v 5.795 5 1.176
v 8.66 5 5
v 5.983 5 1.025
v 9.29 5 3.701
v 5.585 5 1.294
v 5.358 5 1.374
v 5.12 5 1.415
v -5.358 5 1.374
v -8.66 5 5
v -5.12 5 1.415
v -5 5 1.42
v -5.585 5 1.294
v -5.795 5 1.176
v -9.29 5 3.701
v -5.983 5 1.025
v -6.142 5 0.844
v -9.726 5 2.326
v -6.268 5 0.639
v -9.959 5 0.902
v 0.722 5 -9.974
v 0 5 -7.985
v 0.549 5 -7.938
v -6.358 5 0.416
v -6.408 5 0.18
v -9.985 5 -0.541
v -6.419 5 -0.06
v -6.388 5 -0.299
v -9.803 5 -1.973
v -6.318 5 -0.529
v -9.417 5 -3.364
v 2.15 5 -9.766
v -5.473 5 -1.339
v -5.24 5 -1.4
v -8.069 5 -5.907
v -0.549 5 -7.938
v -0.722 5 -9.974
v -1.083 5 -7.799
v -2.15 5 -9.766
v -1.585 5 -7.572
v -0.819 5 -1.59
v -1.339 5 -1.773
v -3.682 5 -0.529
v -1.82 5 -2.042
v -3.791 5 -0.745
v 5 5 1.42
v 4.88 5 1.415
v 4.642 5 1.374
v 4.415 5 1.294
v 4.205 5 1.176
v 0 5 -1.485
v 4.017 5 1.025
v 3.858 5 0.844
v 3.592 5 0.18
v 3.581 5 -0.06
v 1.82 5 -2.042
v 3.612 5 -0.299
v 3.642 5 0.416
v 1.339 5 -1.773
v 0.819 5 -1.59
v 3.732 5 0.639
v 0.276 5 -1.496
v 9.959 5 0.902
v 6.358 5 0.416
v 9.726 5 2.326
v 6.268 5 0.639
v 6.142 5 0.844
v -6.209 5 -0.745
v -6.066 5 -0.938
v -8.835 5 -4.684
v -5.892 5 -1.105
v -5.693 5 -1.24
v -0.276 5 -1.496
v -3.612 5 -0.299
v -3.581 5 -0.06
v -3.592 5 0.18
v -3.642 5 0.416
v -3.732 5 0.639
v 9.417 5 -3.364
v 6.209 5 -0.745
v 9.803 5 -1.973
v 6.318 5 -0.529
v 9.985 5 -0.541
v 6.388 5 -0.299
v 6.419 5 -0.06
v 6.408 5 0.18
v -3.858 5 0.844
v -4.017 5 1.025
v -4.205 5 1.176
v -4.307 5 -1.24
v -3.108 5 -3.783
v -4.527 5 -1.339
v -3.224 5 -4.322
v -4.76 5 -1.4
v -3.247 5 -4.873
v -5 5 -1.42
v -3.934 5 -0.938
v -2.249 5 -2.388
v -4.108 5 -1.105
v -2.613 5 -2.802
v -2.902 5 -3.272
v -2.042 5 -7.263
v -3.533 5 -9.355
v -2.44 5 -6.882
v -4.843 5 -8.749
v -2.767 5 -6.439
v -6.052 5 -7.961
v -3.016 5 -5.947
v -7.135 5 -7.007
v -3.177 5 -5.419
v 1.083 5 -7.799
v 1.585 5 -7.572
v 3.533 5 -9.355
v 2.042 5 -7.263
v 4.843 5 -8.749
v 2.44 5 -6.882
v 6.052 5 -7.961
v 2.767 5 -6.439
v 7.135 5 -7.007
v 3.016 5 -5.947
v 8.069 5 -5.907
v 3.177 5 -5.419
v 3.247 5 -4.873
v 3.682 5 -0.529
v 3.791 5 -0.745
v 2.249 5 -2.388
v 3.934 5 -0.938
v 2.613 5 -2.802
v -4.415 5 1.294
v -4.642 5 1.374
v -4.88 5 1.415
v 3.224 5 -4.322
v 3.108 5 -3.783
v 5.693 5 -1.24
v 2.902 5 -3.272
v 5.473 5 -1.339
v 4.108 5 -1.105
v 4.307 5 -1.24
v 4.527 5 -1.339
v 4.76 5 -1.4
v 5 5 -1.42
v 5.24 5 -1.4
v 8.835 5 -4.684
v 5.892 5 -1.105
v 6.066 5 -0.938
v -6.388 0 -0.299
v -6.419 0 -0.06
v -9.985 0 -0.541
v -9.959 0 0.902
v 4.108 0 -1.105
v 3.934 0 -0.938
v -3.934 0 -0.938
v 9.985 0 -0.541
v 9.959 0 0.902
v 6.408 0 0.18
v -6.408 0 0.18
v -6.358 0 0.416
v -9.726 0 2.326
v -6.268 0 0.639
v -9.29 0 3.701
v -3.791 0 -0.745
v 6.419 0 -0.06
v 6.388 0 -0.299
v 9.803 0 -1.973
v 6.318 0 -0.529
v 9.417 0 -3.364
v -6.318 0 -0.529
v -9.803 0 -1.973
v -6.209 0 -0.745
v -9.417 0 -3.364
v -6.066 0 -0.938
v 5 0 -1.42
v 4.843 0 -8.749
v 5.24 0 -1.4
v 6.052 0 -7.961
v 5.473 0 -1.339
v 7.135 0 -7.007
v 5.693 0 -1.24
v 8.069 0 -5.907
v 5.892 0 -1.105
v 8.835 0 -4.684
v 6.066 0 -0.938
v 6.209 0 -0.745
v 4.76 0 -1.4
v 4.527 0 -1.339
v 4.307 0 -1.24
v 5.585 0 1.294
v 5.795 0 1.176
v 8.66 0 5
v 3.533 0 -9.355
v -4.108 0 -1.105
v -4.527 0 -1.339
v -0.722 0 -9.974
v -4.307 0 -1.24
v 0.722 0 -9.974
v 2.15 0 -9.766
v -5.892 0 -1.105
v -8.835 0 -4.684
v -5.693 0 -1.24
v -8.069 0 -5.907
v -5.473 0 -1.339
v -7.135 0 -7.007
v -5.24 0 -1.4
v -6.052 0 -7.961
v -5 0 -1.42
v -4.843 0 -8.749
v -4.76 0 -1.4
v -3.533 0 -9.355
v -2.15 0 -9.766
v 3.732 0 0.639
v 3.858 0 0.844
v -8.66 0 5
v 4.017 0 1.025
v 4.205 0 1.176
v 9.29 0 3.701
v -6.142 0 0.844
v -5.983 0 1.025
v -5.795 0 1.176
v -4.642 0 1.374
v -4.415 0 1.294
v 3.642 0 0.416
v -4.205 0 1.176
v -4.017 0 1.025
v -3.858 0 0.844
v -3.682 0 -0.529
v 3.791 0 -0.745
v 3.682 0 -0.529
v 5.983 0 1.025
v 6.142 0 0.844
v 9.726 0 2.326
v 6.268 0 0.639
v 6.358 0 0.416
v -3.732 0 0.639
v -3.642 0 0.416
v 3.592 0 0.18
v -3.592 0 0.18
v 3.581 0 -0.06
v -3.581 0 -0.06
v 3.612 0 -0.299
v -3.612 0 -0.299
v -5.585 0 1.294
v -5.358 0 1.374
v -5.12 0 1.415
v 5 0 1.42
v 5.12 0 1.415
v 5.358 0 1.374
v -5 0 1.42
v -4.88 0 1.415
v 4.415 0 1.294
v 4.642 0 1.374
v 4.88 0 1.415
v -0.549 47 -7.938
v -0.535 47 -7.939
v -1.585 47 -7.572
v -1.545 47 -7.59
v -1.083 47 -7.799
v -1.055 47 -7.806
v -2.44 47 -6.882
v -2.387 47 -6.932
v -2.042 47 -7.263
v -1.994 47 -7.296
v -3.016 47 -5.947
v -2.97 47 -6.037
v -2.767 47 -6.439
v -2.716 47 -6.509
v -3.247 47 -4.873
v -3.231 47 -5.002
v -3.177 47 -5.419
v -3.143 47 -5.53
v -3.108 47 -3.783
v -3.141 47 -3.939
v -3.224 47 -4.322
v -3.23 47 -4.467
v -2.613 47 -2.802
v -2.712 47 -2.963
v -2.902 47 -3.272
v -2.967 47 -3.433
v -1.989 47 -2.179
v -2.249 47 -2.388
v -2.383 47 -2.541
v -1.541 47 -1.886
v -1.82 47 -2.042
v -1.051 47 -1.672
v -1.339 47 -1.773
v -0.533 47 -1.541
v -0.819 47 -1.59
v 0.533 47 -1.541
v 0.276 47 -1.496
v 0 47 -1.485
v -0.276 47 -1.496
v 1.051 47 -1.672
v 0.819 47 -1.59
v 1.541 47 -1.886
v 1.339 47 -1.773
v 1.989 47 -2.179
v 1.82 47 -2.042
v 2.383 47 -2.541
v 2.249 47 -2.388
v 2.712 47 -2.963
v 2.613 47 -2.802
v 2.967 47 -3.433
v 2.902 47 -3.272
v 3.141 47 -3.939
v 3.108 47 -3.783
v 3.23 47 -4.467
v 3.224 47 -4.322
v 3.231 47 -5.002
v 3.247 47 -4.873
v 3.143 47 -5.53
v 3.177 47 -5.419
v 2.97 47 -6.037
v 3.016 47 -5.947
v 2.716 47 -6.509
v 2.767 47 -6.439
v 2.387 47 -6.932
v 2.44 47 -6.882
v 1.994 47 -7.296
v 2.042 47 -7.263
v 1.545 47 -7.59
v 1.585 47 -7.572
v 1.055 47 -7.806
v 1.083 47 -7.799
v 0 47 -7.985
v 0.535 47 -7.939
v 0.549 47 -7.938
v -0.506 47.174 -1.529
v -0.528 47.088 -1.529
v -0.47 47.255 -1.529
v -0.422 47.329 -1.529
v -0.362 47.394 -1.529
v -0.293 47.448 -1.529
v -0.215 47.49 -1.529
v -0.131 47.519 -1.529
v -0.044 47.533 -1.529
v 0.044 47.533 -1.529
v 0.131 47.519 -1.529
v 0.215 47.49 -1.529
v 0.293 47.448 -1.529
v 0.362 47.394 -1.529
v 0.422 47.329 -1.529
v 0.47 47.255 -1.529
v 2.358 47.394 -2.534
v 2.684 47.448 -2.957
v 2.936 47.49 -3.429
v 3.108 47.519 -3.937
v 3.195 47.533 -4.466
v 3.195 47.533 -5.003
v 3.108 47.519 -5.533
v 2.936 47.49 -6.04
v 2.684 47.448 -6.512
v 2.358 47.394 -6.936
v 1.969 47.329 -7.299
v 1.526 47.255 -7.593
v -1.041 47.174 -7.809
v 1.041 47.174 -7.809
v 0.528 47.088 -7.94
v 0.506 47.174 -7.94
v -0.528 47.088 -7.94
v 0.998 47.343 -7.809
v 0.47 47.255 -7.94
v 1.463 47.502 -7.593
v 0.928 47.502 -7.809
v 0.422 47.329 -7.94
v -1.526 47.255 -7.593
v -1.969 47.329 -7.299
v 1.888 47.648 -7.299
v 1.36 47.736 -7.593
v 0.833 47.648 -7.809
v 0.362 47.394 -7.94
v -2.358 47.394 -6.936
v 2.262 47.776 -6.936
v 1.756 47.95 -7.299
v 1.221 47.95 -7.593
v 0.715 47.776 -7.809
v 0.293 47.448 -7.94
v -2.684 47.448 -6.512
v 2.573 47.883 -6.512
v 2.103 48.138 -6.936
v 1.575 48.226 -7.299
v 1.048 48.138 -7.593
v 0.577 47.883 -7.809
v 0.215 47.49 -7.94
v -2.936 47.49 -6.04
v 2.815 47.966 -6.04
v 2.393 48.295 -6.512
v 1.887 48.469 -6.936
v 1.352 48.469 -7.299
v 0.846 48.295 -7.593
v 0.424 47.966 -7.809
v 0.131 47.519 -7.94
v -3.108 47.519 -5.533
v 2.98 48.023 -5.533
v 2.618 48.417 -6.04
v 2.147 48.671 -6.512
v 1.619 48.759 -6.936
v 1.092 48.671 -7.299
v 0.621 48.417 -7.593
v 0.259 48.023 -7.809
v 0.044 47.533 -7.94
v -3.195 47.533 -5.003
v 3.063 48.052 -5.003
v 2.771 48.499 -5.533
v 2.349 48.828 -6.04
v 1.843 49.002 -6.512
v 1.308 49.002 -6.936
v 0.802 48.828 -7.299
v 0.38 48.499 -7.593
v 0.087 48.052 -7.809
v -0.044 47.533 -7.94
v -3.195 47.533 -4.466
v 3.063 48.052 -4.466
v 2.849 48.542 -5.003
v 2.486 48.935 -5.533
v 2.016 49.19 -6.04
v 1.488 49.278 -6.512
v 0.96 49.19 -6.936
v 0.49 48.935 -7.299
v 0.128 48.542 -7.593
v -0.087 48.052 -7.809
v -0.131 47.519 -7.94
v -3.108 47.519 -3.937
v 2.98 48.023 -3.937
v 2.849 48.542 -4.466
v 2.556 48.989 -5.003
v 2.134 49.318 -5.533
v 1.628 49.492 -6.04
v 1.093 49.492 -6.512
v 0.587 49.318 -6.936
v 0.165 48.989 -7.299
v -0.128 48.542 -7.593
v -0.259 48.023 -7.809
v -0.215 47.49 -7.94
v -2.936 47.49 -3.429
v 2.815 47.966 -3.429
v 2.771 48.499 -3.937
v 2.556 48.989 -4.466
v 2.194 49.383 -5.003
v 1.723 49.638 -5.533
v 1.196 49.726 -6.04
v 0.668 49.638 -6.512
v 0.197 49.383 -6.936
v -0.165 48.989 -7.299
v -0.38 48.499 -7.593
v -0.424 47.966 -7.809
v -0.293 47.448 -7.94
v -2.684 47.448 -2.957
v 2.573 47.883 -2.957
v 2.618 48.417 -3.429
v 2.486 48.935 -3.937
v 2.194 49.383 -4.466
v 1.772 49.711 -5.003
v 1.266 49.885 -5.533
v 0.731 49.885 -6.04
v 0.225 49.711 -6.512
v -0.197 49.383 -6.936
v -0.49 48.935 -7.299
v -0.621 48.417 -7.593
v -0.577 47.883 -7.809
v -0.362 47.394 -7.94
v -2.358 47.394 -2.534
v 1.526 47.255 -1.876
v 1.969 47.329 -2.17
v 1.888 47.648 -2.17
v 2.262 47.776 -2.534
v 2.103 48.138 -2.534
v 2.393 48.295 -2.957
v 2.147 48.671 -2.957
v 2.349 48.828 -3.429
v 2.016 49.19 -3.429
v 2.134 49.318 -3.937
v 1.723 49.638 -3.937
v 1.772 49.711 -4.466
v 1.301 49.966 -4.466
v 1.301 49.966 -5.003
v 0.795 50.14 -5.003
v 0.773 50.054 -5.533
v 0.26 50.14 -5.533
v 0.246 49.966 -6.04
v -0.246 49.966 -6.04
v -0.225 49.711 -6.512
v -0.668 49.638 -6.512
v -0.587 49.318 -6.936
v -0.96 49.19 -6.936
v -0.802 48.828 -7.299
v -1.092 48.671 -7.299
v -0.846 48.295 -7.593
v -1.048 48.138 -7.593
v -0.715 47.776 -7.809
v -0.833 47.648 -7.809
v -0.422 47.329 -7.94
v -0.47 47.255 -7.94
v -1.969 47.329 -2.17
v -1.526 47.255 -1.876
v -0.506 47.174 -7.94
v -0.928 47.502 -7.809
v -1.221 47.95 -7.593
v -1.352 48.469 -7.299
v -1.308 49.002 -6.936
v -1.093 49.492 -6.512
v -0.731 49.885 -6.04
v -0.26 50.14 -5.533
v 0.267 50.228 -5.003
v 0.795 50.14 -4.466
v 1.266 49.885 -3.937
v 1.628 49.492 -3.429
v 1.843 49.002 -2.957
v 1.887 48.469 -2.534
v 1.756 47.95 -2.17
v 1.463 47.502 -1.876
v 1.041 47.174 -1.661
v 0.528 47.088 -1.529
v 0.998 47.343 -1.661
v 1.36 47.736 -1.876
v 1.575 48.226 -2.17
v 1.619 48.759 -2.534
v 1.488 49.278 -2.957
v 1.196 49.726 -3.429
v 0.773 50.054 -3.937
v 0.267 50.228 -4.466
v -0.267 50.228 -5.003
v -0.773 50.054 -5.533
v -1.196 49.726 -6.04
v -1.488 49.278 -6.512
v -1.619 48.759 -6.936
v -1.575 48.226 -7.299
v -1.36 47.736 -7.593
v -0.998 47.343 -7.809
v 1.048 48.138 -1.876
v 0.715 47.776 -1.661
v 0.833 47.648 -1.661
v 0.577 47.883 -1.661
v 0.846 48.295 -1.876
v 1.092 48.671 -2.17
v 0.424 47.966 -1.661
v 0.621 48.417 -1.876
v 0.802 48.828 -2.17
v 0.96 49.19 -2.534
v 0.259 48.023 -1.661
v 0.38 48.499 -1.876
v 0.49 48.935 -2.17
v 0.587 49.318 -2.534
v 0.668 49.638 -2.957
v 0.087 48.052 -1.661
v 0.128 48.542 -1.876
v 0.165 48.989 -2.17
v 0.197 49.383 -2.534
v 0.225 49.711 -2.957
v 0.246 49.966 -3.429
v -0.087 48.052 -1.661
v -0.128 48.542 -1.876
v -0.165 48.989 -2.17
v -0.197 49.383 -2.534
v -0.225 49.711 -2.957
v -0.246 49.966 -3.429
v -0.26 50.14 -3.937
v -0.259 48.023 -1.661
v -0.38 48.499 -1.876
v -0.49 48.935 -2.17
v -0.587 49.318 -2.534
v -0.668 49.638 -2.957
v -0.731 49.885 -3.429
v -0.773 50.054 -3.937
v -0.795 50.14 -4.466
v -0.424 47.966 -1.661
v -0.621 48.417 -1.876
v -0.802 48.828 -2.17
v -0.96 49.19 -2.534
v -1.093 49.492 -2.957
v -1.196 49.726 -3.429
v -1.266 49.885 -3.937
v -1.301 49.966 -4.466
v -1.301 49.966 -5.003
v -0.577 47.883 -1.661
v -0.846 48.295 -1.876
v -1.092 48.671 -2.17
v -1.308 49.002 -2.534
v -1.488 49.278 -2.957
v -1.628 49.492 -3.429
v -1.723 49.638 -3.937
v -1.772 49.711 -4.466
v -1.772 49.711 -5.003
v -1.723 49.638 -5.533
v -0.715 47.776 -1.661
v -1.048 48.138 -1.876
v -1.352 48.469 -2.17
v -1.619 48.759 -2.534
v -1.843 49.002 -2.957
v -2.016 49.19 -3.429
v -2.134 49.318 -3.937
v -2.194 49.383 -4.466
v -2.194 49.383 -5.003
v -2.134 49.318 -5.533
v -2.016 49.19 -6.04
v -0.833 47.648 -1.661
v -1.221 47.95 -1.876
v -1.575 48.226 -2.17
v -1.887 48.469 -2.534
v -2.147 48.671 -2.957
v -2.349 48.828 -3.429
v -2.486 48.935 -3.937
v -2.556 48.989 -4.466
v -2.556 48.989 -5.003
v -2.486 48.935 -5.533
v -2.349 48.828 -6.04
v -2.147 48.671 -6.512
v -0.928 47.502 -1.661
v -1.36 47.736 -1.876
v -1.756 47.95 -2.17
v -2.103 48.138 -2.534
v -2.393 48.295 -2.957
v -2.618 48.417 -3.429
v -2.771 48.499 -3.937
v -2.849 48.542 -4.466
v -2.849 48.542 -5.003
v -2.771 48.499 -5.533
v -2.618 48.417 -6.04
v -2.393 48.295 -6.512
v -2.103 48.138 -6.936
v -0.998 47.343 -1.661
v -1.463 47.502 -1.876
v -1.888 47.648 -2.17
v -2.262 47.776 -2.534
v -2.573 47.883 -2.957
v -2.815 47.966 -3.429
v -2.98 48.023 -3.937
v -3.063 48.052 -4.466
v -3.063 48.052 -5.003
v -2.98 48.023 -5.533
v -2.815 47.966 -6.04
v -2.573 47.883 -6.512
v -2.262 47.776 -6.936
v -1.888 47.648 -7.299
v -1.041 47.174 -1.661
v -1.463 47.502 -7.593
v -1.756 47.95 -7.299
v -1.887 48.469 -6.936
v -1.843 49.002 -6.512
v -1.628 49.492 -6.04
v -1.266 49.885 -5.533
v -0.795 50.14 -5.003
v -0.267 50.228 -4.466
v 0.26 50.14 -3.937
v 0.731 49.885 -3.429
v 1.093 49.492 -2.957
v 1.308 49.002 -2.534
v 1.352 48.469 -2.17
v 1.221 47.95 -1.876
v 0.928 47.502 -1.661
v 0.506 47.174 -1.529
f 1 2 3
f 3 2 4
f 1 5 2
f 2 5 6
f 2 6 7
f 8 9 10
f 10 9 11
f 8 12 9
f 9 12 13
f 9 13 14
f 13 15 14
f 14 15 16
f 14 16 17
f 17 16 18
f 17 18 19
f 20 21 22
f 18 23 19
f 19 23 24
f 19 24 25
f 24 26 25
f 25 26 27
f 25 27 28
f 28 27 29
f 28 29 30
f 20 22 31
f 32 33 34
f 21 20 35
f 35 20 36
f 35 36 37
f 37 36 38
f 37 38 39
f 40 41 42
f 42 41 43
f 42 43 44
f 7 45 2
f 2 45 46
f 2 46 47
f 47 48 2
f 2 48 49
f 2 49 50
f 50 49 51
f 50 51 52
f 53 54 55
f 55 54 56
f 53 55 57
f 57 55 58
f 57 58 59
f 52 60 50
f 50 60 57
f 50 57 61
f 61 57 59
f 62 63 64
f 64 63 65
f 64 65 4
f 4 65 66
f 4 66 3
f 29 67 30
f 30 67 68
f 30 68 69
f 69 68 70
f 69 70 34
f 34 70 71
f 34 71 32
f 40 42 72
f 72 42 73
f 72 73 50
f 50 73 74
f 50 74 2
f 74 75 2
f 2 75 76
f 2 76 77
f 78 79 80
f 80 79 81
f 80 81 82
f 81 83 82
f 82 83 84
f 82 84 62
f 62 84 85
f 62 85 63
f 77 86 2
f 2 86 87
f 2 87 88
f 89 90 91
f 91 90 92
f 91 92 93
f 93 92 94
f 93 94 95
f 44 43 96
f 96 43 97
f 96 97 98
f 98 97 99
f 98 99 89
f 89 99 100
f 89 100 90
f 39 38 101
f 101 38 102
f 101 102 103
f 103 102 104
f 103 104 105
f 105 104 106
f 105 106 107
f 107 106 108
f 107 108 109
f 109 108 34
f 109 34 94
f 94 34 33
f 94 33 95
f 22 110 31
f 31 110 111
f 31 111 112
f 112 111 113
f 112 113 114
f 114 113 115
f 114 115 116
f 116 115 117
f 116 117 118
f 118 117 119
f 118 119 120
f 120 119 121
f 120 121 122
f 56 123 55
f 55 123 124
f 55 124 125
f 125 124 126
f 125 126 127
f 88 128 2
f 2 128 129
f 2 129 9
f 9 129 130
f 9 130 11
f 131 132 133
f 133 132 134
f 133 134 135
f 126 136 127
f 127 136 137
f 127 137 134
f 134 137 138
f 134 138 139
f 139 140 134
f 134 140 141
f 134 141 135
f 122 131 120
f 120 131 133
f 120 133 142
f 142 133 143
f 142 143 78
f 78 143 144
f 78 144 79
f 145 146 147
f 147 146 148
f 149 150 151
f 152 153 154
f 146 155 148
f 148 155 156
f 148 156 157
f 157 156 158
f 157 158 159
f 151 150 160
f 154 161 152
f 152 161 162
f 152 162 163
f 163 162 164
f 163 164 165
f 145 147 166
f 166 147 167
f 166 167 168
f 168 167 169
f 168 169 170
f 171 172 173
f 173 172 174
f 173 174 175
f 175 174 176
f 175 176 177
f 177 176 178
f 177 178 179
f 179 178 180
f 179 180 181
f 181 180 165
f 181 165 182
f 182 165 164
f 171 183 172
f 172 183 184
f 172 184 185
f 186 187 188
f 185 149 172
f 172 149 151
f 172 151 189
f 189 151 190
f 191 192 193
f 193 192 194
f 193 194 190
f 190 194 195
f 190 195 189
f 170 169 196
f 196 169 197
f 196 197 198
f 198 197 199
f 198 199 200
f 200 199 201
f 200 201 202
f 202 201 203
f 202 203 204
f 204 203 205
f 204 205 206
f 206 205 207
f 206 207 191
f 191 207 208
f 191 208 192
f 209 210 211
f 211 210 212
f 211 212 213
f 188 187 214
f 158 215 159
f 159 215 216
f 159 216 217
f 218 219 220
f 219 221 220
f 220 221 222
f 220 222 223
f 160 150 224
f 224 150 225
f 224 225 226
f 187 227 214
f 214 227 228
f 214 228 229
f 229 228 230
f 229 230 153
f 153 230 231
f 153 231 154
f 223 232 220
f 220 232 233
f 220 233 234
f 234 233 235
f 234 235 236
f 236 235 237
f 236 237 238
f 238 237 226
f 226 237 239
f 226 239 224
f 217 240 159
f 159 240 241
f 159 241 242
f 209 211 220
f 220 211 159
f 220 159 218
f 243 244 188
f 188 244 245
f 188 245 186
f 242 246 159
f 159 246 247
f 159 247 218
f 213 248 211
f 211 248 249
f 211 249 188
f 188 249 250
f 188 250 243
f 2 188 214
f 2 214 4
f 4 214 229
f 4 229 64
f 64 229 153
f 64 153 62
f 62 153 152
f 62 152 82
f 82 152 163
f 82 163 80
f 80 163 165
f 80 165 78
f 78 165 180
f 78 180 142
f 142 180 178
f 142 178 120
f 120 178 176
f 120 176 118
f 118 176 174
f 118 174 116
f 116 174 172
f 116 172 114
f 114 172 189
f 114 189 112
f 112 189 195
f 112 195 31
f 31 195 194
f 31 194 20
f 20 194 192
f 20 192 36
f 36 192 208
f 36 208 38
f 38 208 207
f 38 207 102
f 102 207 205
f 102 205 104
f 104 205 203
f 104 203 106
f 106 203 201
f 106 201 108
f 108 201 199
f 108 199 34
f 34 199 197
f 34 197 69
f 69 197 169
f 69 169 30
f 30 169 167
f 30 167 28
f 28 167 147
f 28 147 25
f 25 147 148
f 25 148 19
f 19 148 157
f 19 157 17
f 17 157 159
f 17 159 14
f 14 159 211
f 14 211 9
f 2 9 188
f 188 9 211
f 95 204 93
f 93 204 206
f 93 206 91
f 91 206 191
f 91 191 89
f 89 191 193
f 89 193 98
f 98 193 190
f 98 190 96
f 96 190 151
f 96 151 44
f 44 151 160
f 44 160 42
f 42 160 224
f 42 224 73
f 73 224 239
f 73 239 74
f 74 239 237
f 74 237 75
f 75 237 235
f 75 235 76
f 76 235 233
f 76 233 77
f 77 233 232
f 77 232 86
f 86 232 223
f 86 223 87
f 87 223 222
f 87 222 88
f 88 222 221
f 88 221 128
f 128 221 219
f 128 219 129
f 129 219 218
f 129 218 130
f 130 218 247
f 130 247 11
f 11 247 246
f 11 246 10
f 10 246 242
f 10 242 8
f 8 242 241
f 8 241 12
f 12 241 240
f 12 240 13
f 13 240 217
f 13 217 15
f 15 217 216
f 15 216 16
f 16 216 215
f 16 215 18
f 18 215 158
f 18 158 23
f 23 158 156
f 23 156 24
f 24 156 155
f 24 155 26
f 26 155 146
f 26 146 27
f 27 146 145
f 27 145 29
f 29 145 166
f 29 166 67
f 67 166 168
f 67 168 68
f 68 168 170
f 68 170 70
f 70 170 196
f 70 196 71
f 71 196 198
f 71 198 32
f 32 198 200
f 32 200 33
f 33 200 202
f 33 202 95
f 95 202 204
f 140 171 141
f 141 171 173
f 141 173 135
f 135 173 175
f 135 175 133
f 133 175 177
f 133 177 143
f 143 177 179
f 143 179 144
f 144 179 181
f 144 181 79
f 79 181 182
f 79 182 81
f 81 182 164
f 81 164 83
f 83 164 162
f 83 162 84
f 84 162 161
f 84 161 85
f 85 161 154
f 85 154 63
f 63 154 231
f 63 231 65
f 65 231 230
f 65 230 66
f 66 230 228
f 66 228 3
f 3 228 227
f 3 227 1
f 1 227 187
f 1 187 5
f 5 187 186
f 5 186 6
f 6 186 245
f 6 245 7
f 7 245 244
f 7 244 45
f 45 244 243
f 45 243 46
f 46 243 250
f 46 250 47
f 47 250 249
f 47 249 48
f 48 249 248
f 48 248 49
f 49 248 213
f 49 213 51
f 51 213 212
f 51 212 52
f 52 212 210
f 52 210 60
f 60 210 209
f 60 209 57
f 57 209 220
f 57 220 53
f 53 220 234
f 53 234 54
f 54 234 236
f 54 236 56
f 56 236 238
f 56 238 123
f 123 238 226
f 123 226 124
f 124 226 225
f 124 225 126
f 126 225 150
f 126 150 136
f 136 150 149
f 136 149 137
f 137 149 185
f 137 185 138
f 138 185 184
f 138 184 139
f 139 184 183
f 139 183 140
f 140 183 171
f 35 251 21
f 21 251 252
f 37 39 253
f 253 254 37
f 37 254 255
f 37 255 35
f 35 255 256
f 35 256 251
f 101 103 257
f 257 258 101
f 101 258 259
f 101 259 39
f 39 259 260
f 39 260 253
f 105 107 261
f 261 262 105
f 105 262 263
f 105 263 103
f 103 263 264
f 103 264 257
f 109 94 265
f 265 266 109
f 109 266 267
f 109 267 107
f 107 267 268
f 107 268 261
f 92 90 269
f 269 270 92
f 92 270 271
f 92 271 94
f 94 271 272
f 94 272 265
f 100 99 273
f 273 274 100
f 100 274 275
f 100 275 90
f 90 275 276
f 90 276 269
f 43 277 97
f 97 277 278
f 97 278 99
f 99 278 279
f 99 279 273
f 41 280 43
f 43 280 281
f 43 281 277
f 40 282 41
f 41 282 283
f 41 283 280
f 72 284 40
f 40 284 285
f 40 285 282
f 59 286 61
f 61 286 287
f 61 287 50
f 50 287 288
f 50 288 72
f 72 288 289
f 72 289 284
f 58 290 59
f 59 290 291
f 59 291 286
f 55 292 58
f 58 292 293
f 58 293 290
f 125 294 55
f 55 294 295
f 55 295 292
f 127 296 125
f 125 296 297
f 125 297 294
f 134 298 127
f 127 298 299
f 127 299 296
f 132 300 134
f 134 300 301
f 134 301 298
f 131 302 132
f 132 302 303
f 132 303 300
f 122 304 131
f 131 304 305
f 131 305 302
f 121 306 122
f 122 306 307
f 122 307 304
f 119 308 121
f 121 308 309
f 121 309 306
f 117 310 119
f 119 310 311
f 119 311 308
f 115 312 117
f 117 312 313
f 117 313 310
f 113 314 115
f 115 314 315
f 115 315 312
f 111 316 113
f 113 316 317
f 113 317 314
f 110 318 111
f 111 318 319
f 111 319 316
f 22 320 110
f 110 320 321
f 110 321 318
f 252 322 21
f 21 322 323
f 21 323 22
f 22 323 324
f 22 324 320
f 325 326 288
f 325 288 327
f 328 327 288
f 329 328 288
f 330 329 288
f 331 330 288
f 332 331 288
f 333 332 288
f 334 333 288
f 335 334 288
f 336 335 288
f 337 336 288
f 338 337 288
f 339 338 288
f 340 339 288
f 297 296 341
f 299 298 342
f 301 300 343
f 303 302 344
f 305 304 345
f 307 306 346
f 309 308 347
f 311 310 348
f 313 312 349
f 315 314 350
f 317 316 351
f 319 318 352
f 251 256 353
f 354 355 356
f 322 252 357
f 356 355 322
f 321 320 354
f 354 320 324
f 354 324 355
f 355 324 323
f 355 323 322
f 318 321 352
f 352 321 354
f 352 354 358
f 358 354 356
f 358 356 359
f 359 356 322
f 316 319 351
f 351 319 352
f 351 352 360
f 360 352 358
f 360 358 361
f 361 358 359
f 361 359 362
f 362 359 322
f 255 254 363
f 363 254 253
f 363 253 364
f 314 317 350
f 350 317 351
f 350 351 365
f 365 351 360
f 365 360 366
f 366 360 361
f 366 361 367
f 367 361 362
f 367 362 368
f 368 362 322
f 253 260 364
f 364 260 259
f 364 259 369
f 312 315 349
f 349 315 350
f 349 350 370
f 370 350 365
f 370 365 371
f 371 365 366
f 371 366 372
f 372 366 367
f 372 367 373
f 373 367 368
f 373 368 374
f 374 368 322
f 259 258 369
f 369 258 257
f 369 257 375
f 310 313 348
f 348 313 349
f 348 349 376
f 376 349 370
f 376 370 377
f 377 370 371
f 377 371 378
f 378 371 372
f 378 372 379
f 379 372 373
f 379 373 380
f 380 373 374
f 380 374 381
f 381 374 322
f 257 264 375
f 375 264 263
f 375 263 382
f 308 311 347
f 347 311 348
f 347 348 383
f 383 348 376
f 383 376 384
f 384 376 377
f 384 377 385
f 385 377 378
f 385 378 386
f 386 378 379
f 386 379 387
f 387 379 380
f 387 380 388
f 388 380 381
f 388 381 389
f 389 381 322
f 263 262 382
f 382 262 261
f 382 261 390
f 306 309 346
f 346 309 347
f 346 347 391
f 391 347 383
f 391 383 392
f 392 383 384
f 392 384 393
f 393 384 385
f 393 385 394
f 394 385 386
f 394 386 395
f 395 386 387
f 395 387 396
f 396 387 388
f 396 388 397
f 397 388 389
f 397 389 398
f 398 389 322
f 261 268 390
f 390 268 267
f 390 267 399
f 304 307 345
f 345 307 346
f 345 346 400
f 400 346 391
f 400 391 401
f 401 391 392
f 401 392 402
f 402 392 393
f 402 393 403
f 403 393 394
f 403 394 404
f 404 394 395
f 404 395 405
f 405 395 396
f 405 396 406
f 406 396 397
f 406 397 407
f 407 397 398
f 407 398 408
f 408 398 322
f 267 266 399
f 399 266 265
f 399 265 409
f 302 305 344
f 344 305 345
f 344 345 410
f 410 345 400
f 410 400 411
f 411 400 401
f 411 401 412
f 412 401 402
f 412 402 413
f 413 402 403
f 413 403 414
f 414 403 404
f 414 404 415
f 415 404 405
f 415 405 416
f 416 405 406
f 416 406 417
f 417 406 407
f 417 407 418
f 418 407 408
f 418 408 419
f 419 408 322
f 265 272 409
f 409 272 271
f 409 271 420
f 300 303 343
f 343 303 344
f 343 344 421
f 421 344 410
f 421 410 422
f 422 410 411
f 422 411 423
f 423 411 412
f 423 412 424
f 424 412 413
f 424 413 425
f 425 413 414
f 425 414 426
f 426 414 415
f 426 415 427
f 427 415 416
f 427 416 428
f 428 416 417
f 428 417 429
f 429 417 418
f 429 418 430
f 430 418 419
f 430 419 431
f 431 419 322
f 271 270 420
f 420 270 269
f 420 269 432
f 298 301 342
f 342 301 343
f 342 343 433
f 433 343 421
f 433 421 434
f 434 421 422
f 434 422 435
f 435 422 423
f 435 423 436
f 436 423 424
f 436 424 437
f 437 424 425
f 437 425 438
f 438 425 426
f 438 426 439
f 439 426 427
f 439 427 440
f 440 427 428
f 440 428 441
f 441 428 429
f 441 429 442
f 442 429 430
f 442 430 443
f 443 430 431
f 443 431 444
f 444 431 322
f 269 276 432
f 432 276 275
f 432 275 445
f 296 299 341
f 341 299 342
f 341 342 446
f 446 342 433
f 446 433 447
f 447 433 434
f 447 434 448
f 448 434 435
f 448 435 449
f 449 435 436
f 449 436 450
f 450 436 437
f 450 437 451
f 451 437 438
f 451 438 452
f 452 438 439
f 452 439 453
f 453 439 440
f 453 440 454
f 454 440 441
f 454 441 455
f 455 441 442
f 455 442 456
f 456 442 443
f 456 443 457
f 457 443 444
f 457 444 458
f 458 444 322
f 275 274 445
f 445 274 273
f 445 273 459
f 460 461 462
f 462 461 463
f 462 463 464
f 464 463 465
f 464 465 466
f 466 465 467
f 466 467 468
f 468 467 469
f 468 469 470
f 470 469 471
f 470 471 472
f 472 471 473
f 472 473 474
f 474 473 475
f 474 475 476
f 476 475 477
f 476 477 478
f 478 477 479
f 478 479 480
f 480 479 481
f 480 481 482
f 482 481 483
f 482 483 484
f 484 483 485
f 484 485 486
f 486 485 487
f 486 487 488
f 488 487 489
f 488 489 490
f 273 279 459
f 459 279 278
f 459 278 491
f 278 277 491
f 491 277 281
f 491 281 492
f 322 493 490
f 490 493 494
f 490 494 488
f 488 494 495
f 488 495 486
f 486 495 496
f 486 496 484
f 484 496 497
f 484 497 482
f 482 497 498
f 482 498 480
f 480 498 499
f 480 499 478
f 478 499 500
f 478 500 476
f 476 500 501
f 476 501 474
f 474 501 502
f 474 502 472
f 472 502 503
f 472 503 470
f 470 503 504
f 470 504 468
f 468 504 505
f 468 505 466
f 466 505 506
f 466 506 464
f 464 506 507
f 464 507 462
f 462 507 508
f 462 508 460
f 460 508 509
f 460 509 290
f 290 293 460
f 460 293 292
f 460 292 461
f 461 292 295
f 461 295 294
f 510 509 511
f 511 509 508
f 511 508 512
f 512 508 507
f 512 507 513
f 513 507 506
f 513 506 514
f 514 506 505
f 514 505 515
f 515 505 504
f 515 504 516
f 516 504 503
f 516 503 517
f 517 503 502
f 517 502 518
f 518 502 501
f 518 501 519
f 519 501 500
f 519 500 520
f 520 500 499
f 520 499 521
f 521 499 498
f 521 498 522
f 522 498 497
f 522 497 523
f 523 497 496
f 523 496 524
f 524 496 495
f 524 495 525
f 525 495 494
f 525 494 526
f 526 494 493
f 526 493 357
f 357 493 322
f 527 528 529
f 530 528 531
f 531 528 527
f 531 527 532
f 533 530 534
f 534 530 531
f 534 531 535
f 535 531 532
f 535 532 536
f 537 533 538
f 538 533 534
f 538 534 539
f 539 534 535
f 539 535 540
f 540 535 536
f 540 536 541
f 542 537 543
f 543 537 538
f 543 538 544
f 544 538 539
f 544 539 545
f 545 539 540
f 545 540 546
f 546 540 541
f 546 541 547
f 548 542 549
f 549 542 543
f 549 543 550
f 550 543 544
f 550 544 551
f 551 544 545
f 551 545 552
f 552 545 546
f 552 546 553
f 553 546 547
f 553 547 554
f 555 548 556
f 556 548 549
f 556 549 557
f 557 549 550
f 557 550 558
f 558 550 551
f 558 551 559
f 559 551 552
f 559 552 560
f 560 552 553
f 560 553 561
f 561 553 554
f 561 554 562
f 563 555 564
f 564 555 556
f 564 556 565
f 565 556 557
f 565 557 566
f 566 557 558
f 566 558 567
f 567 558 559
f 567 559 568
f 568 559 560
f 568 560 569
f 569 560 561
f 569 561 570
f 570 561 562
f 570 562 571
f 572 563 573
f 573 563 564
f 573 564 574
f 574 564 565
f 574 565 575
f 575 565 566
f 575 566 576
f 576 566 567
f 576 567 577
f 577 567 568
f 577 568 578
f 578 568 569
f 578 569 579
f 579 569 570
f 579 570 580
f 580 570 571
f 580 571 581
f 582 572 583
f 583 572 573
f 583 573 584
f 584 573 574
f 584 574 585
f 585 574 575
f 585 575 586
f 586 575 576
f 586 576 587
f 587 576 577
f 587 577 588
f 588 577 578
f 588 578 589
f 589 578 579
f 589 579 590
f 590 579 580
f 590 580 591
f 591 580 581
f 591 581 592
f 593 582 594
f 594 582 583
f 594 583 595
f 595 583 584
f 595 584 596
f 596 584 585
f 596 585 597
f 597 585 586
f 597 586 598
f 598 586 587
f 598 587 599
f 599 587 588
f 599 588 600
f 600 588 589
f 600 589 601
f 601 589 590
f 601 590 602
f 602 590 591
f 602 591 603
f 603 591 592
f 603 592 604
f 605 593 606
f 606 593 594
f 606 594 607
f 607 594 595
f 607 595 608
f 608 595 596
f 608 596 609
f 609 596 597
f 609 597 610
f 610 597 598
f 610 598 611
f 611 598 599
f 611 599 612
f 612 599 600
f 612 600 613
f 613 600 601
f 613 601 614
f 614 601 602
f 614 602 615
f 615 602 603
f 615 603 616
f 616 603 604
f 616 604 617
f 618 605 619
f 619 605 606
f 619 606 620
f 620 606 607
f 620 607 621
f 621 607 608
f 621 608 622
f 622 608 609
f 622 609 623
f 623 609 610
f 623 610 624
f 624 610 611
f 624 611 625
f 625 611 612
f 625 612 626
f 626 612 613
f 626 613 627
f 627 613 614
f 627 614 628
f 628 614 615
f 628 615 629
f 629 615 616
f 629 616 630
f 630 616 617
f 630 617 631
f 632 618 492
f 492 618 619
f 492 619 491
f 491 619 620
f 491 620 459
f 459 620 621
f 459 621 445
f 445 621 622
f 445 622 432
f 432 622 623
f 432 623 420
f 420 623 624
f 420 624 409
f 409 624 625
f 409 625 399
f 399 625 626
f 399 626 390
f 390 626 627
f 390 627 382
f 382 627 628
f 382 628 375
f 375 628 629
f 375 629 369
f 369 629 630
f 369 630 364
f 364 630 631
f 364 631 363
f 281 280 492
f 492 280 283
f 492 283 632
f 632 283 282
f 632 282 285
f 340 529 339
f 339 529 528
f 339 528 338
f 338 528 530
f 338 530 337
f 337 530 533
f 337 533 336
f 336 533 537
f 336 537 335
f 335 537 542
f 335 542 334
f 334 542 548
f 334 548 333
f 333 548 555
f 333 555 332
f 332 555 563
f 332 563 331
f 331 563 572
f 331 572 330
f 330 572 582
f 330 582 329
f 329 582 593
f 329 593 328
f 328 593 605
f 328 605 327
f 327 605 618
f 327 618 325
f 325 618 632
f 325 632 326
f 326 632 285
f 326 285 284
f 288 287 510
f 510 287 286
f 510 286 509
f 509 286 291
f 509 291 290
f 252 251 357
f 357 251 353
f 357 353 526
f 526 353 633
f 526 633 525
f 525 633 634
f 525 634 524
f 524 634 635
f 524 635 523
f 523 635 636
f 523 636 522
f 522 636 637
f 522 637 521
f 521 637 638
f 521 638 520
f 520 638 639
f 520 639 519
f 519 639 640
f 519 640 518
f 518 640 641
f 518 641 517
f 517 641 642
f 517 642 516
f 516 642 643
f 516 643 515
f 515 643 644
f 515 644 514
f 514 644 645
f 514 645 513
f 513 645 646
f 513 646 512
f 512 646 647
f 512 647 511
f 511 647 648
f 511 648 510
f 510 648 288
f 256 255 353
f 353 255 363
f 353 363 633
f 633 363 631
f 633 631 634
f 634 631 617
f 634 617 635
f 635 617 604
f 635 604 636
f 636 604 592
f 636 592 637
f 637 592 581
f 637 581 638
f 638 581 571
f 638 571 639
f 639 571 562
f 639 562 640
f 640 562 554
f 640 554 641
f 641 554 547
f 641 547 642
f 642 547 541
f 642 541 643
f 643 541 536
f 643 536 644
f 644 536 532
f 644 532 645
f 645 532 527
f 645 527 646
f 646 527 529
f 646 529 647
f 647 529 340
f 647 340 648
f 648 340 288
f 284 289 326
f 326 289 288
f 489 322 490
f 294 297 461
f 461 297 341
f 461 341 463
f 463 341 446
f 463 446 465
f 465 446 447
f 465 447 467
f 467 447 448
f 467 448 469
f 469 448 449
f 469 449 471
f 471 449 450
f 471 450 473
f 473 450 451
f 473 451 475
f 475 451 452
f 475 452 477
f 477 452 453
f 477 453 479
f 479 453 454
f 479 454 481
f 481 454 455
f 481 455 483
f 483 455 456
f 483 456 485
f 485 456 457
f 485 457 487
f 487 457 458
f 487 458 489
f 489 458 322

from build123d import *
from build123d.topology import SkipClean

# Parameters (mm, degrees)
SKETCH1_R           = 1.42
BOSS_EXTRUDE1_DEPTH = 5
SKETCH3_R           = 3.25
BOSS_EXTRUDE2_DEPTH = 42


with BuildPart() as part:
    # Sketch1 → Boss-Extrude1 (new body)
    with BuildSketch(Plane(origin=(0, 0, 0), x_dir=(1, 0, 0), z_dir=(0, 1, 0))):
        with BuildLine():
            Line((-8.660254038, -5), (8.660254038, -5))
            ThreePointArc((8.660254038, -5), (0, 10), (-8.660254038, -5))
        make_face()
        with Locations(Location((-5, 0, 0), (0, 0, 270))):
            Circle(SKETCH1_R, mode=Mode.SUBTRACT)
        with Locations(Location((5, 0, 0), (0, 0, 270))):
            Circle(SKETCH1_R, mode=Mode.SUBTRACT)
    extrude(amount=BOSS_EXTRUDE1_DEPTH)

    # Sketch3 → Boss-Extrude2 (add)
    with BuildSketch(Plane(origin=(0, 5, 0), x_dir=(1, 0, 0), z_dir=(0, 1, 0))):
        with Locations(Location((0, 4.734782237, 0), (0, 0, 90))):
            Circle(SKETCH3_R)
    extrude(amount=BOSS_EXTRUDE2_DEPTH)

    # Sketch6 → Revolve1 (revolve)
    with SkipClean():  # the faces are left unmerged after this step: merging them gives an invalid solid
        with BuildSketch(Plane(origin=(0, 47, 0), x_dir=(1, 0, 0), z_dir=(0, 1, 0))):
            with BuildLine():
                ThreePointArc((3.25, 4.734782237), (2.298097039, 7.032879276), (0, 7.984782237))
                Line((0, 7.984782237), (0, 1.484782237))
                ThreePointArc((0, 1.484782237), (2.298097039, 2.436685198), (3.25, 4.734782237))
            make_face()
            with BuildLine():
                Line((0, 1.484782237), (0, 7.984782237))
                ThreePointArc((0, 7.984782237), (-3.25, 4.734782237), (0, 1.484782237))
            make_face()
        revolve(axis=Axis((0, 47, -7.984782237), (0, 0, 1)))


solid = part.part
